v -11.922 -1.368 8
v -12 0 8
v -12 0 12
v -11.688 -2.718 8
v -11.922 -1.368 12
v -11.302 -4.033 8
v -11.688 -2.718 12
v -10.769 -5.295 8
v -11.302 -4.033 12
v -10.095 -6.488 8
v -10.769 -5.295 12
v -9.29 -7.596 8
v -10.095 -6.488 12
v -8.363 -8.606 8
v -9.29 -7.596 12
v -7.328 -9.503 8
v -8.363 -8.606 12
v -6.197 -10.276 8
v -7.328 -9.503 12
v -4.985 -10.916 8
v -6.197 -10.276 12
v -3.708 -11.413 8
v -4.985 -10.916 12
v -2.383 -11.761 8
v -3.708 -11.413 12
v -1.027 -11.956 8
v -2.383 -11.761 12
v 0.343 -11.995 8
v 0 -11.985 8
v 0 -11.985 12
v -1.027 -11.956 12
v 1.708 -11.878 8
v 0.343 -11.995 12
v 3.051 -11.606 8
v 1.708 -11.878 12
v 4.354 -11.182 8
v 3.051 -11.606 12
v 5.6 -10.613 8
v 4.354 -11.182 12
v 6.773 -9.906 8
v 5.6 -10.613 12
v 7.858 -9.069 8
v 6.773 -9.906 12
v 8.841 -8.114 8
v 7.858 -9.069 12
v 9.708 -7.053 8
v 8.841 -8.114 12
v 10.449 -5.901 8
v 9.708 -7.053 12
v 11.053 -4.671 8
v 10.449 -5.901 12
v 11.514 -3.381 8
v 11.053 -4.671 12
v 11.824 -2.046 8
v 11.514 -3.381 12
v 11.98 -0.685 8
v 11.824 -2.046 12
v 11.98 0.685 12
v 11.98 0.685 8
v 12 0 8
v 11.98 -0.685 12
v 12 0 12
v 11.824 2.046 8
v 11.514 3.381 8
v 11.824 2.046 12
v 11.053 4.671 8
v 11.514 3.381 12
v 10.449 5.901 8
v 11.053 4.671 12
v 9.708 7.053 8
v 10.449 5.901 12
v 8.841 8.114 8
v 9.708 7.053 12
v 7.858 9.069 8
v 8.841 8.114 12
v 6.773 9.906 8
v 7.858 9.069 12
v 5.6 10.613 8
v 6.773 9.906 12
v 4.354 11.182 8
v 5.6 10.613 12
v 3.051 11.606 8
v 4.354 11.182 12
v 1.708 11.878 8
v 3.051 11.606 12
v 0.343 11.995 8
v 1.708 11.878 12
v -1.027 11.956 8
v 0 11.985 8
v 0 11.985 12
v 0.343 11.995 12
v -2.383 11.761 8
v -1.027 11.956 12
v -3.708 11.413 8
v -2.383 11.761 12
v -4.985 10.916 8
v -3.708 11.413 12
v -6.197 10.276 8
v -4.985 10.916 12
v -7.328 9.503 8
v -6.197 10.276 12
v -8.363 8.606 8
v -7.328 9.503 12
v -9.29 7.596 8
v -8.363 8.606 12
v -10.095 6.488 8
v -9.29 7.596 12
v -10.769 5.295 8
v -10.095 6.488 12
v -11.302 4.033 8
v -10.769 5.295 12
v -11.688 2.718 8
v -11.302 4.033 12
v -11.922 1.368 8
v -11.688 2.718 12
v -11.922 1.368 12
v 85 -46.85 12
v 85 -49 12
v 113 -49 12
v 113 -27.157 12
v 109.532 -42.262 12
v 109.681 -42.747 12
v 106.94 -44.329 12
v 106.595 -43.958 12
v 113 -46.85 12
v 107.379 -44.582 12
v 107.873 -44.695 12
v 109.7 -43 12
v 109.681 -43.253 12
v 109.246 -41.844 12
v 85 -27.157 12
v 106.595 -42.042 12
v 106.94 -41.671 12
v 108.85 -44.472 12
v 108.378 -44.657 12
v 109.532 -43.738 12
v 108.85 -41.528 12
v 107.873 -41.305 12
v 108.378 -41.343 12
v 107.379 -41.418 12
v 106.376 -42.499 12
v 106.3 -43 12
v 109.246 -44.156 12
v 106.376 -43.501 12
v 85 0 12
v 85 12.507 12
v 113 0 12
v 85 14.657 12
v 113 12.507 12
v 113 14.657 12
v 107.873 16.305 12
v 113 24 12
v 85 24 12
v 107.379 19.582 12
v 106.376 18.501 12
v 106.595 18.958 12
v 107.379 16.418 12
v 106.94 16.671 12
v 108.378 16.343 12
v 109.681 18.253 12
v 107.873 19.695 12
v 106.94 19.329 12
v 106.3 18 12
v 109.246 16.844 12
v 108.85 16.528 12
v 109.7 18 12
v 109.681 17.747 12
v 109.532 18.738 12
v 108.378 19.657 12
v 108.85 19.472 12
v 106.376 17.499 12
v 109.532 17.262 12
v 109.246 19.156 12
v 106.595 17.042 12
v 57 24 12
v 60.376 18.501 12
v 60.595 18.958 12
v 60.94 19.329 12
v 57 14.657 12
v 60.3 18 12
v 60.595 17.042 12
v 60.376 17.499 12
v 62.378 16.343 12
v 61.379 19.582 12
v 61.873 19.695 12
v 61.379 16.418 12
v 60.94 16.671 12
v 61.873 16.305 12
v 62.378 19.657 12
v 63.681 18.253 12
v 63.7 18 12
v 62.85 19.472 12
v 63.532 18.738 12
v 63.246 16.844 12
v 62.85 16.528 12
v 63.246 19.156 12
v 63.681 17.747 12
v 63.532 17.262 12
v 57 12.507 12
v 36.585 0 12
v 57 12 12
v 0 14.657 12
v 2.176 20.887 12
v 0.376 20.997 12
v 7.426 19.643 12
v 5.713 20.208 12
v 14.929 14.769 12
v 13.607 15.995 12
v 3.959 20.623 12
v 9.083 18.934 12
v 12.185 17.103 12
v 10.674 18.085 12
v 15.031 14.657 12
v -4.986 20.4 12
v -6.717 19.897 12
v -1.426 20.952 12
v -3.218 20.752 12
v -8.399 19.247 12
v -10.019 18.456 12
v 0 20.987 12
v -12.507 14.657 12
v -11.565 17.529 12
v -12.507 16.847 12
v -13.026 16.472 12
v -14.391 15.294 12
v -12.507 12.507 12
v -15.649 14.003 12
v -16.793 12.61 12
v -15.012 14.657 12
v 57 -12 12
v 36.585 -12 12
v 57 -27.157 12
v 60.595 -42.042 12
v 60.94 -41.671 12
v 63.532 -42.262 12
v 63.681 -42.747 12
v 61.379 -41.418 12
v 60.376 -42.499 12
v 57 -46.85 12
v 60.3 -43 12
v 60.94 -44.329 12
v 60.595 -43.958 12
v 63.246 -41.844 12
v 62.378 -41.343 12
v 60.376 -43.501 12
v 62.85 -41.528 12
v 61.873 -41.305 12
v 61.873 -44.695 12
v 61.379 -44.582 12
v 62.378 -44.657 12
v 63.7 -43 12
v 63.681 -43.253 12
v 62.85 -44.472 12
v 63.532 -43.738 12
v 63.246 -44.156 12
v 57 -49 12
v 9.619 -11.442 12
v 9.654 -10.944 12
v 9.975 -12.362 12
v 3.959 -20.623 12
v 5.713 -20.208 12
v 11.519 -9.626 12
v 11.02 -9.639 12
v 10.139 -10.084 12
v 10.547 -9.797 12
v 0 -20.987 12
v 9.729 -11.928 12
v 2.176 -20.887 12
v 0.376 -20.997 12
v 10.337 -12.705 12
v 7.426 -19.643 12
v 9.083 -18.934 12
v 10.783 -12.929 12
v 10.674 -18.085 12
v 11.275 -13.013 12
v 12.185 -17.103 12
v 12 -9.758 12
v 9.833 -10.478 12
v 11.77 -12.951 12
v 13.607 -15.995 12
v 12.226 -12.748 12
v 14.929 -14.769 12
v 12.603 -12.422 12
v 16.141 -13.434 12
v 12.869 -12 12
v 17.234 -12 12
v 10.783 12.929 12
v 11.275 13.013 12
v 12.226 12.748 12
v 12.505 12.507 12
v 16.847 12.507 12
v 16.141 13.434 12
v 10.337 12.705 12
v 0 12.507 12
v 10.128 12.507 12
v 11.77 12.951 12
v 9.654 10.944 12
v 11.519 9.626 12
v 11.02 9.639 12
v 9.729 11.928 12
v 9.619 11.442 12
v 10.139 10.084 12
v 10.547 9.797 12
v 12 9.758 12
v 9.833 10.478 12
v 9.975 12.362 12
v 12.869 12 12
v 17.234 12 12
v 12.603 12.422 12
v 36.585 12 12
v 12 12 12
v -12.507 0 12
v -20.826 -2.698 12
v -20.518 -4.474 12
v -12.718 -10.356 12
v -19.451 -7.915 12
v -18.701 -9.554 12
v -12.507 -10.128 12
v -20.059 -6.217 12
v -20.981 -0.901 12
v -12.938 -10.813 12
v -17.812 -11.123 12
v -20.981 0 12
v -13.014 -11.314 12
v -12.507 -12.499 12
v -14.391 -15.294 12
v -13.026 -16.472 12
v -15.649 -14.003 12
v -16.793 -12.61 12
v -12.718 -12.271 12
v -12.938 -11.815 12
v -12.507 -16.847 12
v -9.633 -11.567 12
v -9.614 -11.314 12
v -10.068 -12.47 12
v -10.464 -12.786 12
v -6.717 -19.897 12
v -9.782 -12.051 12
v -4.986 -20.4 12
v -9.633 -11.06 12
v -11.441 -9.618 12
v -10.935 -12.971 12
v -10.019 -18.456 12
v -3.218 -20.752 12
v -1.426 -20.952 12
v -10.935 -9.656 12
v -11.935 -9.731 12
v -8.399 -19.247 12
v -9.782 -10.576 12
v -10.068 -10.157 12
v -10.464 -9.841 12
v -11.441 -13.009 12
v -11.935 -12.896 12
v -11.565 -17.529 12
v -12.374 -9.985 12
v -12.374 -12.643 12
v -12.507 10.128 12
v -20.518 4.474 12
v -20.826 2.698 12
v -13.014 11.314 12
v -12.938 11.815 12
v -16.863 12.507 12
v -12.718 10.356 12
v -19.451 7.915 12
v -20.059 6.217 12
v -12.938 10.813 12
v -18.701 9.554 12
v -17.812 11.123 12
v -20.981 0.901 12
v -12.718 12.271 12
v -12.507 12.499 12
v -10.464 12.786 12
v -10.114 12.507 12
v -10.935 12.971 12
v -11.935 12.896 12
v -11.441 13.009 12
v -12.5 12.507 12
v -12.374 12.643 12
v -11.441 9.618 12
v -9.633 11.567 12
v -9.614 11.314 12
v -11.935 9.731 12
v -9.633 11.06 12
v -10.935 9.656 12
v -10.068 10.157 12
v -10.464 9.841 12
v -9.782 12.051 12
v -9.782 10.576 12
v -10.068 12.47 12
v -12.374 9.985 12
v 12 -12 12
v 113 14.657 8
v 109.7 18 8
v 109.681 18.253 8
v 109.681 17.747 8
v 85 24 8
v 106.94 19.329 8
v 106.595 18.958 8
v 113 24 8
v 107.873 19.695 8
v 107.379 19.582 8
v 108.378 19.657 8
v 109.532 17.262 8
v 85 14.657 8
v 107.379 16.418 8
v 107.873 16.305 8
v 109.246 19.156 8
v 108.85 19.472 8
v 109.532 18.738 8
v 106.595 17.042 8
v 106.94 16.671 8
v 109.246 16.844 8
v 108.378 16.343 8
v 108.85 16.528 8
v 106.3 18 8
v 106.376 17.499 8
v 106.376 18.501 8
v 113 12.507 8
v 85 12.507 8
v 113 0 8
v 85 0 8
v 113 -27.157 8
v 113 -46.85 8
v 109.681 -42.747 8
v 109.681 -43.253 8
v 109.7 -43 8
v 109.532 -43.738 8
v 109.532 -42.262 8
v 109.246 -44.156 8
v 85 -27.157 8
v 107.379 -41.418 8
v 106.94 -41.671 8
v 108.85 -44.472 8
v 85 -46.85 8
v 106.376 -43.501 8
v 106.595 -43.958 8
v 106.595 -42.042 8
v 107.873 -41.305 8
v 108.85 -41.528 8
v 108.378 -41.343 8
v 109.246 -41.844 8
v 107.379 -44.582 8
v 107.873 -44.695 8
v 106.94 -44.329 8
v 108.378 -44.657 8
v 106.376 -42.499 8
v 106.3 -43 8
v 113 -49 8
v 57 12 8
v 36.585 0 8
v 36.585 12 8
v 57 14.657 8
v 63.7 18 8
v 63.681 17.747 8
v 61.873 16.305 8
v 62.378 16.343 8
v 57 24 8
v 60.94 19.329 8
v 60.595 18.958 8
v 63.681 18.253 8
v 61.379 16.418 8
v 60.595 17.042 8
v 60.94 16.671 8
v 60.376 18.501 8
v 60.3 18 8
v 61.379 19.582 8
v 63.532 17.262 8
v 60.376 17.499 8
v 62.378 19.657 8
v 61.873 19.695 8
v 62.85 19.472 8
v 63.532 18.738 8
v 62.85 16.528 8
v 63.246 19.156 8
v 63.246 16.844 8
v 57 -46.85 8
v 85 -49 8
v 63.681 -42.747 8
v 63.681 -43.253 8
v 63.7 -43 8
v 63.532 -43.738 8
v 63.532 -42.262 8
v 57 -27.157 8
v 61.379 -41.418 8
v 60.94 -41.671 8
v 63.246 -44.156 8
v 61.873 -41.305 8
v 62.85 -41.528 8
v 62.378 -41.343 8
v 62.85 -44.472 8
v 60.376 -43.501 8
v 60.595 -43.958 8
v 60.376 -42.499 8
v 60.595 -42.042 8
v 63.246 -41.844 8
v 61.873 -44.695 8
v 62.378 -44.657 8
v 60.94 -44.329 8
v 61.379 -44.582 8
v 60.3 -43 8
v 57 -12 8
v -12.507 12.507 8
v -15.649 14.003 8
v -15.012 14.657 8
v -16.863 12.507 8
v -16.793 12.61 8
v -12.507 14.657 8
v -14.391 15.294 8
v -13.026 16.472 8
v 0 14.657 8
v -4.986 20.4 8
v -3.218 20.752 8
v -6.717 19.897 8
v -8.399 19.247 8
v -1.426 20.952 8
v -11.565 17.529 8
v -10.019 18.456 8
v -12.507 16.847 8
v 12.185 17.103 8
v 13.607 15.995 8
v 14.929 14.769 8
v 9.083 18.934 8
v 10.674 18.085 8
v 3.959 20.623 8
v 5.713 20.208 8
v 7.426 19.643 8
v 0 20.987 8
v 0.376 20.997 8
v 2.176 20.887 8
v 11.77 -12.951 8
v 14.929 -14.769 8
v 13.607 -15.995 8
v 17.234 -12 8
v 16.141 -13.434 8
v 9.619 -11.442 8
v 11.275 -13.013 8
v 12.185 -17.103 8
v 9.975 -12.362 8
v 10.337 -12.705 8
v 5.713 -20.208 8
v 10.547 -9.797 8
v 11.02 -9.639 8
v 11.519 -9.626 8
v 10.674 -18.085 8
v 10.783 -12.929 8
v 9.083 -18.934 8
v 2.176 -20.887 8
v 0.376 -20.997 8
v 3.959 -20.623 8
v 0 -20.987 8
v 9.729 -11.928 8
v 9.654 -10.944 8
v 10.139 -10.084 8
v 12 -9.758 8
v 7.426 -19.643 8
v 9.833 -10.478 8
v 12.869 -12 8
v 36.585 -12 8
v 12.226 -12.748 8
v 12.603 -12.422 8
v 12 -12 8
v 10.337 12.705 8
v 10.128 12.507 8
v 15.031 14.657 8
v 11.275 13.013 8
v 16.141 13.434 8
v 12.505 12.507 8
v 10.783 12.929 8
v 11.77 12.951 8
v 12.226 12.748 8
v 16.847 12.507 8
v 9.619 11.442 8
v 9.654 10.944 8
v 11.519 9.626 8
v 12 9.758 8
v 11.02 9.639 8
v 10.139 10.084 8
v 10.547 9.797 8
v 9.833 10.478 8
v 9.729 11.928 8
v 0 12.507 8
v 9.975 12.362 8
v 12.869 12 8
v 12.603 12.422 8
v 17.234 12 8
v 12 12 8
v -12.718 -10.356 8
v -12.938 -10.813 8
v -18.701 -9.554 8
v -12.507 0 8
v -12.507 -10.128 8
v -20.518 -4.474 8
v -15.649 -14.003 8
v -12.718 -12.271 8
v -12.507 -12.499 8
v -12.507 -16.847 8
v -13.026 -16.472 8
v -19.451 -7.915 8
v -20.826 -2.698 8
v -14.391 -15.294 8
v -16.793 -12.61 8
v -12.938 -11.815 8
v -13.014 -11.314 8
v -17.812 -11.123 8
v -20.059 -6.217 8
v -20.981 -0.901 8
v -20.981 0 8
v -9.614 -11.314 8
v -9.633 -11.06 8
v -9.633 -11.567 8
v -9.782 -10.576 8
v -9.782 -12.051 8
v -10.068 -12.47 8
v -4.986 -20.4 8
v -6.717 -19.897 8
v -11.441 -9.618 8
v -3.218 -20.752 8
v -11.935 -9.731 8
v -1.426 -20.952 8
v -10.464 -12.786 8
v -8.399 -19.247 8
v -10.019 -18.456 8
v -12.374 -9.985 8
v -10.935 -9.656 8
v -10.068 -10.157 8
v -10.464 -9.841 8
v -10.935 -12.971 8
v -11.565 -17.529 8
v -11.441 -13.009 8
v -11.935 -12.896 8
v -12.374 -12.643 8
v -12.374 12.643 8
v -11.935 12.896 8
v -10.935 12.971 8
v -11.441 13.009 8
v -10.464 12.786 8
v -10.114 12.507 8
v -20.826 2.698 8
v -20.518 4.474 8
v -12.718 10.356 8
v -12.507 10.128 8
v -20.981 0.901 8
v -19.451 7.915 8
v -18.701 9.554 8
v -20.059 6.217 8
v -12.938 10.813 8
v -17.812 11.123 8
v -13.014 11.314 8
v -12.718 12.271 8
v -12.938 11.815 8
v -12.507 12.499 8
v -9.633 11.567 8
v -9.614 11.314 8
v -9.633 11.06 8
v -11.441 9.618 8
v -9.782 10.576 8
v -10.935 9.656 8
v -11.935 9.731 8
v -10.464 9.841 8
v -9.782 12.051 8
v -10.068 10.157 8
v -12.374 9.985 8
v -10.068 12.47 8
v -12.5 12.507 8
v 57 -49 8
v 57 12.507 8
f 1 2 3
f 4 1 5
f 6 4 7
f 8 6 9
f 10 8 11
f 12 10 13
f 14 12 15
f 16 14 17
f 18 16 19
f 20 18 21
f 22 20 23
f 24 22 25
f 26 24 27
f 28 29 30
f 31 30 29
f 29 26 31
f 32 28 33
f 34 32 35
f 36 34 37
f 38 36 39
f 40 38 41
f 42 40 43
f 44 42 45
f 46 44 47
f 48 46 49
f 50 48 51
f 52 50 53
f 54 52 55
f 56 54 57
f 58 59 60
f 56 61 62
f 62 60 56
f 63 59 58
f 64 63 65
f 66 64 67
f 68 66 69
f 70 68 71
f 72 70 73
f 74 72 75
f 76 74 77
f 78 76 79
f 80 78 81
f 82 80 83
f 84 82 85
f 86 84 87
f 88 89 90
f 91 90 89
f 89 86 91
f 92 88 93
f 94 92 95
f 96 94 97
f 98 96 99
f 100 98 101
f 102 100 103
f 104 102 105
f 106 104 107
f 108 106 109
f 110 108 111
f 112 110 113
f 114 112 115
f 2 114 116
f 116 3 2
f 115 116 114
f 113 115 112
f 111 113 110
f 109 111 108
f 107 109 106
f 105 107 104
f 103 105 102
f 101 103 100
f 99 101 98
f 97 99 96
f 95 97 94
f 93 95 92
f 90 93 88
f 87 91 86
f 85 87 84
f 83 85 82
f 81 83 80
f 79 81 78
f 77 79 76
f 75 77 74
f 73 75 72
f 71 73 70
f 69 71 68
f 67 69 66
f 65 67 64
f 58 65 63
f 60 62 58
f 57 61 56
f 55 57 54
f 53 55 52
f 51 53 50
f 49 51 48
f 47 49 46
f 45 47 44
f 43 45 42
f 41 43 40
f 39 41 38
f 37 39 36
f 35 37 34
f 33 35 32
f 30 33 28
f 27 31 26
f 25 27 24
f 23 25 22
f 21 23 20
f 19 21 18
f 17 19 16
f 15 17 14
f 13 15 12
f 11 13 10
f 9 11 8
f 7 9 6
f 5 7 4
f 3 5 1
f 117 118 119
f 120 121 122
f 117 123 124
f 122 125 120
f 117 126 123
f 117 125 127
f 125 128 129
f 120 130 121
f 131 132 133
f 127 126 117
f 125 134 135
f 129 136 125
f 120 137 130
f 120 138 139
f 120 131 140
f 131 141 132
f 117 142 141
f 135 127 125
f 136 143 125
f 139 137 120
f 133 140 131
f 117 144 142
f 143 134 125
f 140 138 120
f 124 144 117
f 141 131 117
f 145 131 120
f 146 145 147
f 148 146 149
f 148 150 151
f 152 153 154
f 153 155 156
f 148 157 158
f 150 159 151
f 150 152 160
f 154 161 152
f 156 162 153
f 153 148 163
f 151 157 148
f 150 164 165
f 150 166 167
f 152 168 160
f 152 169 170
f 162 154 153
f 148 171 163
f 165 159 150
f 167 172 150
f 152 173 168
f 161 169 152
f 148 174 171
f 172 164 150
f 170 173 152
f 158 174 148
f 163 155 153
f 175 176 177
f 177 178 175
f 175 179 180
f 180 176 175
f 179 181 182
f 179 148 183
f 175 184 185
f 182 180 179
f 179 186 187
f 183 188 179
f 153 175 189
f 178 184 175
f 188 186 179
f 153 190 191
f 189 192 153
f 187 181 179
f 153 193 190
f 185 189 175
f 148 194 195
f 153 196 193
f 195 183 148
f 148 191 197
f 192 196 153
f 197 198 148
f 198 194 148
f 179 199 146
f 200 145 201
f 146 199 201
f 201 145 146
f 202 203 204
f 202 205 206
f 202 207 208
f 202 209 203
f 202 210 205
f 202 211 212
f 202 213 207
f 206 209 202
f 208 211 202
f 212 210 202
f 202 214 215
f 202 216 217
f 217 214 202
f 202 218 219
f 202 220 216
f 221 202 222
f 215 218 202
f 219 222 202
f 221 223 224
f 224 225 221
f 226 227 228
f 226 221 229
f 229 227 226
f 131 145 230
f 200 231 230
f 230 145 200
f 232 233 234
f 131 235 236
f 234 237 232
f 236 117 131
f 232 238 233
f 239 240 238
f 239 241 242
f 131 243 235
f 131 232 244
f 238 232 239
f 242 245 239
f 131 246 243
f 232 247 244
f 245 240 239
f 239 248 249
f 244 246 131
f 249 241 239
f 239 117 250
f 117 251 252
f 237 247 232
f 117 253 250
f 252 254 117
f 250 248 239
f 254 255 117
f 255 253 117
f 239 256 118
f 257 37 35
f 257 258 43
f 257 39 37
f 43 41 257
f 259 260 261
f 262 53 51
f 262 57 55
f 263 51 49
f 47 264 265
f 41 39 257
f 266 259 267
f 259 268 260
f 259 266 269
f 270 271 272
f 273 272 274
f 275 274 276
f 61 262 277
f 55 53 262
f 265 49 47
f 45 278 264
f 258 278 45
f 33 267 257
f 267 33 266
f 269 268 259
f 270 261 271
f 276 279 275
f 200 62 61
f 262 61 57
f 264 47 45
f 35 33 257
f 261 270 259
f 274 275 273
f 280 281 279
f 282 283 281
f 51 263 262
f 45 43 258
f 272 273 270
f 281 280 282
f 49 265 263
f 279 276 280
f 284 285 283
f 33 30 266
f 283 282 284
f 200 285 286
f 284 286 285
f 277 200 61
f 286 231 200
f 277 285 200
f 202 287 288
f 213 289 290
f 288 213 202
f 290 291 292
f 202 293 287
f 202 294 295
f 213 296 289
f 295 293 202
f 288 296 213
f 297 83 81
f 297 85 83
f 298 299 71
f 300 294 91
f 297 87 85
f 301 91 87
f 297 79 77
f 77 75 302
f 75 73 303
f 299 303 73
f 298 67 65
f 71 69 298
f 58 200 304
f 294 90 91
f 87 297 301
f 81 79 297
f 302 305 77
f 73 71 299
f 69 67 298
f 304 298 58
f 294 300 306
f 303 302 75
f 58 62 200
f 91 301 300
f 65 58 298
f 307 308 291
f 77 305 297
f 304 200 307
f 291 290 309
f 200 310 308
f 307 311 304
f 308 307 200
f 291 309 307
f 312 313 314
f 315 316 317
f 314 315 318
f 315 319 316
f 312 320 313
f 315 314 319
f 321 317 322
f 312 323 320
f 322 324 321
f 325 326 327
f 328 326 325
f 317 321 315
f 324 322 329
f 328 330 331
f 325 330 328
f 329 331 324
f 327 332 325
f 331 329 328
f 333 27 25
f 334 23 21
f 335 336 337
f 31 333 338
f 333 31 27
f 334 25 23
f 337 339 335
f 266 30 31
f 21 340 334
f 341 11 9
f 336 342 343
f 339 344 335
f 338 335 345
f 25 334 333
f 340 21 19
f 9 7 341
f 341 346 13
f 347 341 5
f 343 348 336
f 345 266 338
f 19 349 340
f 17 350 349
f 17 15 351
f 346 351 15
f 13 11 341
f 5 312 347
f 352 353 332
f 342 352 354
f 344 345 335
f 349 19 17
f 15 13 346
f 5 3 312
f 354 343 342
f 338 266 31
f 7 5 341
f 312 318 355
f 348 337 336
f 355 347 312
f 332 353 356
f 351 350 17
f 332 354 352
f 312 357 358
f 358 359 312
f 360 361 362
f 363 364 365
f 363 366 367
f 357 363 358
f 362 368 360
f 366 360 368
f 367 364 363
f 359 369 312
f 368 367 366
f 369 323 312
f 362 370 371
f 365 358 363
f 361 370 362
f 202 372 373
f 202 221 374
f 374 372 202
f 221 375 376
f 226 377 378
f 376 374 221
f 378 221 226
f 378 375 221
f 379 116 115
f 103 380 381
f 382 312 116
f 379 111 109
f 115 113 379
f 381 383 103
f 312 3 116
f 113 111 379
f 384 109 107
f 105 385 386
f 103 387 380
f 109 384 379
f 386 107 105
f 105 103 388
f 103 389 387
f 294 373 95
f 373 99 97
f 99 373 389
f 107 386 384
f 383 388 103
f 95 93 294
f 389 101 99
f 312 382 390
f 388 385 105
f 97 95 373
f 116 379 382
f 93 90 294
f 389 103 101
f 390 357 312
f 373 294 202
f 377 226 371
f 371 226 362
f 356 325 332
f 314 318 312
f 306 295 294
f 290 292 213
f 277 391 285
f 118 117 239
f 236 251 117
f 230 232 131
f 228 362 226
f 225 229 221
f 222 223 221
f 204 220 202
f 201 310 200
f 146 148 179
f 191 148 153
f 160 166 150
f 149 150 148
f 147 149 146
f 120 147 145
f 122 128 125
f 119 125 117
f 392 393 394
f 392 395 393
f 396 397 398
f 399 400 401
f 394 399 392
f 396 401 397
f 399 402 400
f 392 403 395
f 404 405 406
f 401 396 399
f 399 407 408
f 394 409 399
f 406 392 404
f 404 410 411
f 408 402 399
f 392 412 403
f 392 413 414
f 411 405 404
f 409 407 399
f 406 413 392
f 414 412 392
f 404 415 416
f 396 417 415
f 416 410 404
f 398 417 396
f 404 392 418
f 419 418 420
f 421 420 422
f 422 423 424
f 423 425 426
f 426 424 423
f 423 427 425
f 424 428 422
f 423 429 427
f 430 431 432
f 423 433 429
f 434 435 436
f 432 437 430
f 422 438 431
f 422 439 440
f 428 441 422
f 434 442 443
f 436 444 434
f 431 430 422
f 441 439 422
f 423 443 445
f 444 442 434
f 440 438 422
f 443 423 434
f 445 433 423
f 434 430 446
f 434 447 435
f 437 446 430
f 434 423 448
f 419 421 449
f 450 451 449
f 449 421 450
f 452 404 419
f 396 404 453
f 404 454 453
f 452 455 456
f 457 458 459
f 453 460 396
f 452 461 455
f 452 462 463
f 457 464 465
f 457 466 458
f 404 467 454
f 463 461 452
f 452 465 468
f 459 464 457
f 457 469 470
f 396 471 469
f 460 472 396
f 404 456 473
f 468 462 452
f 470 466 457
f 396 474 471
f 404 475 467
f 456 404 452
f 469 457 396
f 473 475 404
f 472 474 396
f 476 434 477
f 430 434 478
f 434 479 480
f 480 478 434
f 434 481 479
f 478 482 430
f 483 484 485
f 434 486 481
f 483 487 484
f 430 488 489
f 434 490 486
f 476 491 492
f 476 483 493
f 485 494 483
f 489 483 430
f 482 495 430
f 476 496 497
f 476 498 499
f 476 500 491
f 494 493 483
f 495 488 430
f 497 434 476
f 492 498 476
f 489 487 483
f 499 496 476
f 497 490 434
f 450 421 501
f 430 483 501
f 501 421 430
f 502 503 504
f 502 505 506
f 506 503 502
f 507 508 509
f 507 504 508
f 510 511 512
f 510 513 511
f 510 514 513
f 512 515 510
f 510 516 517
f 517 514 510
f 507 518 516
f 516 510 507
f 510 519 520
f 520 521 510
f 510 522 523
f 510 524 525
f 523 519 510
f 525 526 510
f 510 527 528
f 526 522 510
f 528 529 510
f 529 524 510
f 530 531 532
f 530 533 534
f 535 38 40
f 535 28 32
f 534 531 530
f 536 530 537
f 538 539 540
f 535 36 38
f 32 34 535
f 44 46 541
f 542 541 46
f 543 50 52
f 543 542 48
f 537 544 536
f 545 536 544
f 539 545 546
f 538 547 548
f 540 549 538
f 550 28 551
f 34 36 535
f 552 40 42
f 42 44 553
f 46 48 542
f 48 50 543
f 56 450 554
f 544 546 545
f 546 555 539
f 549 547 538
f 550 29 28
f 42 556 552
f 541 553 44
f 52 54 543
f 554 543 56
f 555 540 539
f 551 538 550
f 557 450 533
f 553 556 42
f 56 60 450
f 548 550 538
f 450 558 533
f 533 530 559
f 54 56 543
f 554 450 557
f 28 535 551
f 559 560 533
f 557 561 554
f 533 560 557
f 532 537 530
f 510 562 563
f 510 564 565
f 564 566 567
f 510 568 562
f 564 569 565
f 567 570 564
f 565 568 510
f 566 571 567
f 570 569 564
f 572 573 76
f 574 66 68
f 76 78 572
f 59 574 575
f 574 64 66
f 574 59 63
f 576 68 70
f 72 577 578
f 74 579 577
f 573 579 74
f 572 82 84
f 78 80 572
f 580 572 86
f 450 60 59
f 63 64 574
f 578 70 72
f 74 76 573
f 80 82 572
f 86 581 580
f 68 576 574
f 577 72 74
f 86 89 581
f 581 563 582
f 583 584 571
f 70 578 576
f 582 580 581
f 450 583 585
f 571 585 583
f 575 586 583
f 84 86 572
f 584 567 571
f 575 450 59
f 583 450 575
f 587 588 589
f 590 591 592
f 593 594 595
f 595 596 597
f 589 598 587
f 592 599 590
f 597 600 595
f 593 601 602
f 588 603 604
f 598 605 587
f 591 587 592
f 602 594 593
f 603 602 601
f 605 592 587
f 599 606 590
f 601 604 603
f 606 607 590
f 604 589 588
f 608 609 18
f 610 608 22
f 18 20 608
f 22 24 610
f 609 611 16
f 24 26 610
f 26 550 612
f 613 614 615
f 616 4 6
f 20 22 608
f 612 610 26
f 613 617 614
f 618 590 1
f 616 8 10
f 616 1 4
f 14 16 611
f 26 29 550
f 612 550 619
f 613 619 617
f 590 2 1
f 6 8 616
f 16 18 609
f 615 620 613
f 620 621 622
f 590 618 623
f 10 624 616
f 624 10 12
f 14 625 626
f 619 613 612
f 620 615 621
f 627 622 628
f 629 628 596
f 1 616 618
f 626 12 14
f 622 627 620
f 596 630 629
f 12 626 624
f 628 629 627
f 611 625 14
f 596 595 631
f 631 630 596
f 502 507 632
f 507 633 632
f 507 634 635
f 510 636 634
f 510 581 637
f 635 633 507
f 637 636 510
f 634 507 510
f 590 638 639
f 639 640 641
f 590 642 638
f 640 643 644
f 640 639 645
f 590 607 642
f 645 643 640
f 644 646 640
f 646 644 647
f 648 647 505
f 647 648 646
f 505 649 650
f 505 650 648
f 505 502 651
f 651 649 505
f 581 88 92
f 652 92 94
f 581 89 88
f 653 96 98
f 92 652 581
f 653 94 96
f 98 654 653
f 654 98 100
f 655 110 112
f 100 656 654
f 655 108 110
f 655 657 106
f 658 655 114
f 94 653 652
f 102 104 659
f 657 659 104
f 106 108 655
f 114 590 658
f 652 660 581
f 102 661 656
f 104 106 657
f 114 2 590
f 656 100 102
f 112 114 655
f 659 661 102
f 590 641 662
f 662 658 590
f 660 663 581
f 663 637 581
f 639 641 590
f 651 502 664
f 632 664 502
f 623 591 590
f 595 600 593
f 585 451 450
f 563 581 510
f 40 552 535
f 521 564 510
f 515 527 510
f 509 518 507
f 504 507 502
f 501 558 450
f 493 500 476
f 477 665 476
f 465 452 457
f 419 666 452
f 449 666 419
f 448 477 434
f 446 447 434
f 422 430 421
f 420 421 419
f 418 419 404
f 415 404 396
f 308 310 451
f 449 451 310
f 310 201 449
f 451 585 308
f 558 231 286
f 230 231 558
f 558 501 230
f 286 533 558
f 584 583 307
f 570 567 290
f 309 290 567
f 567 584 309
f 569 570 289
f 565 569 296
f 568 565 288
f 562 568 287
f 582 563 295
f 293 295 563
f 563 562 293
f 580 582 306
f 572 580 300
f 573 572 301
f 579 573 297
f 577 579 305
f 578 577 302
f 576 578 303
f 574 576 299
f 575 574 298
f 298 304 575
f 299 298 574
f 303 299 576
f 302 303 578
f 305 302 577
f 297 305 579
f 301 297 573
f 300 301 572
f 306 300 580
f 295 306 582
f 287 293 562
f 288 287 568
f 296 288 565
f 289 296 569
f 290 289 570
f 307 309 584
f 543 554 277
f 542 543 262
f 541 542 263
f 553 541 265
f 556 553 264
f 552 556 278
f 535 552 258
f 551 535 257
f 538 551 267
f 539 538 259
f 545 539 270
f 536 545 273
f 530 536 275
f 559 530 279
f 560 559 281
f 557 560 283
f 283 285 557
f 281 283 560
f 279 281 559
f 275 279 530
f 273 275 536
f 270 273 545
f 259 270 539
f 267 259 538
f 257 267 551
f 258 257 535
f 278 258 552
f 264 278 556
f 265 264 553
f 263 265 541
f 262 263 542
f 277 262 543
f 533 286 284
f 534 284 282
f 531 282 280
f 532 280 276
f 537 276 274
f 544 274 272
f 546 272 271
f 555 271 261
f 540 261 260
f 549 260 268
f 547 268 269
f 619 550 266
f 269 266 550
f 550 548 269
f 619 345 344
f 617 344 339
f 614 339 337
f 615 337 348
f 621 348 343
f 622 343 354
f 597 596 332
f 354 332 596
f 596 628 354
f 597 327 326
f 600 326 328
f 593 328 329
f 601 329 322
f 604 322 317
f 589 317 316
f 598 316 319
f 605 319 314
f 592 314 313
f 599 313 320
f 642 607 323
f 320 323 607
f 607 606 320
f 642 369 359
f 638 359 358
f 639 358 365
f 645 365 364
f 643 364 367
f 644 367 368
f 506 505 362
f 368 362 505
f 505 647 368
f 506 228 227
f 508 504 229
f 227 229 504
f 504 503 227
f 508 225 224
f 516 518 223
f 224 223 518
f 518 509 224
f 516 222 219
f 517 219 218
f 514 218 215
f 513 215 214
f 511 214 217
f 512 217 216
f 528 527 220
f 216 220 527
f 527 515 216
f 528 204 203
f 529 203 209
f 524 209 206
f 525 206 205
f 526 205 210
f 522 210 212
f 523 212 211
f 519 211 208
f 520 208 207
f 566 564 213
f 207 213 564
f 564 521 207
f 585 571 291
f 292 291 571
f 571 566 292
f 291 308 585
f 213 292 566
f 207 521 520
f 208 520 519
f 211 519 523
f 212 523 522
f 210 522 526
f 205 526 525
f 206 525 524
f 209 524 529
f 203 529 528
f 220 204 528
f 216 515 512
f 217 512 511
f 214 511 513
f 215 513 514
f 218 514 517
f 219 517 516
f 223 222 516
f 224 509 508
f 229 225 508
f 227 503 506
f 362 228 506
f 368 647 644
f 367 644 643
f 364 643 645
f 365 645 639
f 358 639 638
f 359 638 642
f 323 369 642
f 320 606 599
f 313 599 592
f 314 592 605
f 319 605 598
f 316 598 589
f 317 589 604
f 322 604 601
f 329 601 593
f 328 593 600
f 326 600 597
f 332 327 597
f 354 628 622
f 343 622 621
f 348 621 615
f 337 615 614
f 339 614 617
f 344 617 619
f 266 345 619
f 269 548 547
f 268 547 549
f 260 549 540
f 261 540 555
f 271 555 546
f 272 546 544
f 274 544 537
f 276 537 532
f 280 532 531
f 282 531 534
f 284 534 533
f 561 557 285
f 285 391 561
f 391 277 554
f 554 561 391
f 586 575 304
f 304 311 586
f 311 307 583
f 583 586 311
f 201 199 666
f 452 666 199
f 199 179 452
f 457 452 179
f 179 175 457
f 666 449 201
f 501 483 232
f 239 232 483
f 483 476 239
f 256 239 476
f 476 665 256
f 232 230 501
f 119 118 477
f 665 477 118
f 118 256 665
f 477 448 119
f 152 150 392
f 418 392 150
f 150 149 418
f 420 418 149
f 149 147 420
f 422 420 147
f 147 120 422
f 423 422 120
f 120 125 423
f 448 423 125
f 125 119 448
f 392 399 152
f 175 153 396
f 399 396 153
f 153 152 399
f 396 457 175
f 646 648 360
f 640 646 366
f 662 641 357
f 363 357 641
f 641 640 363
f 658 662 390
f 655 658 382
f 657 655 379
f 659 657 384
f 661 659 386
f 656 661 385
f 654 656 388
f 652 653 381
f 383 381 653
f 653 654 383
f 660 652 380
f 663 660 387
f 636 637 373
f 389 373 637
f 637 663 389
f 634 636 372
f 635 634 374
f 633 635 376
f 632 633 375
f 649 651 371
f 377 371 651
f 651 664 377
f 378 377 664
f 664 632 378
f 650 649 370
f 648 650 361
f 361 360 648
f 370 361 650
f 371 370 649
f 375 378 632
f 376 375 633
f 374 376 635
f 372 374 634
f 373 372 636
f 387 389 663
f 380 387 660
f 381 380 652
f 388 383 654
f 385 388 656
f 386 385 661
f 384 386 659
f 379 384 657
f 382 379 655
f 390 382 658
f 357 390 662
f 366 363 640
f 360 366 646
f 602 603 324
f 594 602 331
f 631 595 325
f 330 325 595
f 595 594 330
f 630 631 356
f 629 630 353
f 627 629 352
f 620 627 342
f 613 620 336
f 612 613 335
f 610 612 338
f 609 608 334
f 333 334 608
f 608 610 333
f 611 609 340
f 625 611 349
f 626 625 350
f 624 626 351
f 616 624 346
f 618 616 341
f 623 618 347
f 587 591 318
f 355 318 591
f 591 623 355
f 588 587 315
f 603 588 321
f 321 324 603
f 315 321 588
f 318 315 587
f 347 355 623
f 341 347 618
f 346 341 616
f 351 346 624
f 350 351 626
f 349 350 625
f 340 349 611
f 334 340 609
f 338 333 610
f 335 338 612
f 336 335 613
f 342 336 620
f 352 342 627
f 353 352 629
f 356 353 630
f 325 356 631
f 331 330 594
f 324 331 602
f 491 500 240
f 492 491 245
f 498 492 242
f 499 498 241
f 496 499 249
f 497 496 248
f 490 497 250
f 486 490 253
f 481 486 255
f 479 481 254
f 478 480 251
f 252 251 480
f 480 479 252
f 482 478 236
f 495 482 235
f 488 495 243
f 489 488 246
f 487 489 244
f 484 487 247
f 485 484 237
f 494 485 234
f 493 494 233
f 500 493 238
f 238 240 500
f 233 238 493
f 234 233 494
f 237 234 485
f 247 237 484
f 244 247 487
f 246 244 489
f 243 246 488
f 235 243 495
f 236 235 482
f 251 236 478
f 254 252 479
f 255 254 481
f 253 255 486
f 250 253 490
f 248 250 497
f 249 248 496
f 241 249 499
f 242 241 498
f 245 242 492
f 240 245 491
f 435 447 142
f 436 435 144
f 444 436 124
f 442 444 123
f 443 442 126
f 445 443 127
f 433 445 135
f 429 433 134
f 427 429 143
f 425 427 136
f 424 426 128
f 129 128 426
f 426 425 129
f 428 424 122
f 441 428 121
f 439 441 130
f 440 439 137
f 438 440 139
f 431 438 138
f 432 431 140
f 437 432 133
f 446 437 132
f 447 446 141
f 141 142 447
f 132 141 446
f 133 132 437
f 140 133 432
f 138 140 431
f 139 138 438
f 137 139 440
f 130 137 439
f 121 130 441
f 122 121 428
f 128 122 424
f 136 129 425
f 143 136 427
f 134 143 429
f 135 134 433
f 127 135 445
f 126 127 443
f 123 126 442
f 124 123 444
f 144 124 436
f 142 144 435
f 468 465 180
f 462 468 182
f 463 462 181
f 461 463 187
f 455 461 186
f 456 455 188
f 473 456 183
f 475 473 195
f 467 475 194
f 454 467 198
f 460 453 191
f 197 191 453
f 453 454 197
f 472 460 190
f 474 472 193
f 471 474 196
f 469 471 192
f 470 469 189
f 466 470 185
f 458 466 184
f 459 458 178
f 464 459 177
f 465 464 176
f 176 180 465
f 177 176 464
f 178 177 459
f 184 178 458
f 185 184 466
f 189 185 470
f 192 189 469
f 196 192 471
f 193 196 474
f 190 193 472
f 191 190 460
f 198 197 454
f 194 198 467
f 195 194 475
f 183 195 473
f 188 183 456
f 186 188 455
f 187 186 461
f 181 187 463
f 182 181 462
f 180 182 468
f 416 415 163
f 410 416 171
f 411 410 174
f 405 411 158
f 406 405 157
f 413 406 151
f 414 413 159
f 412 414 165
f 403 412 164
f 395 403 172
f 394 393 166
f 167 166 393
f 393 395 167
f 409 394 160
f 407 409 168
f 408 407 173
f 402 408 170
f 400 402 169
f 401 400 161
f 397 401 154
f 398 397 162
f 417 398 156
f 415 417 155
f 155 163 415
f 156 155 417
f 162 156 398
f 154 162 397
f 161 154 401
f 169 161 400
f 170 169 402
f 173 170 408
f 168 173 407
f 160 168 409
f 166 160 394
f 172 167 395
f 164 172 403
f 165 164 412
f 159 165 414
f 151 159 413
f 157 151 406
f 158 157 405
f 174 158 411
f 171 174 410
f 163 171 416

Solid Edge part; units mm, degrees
sketch "Sketch1" plane through (0, 0, 8) normal (0, 0, 1) x (1, 0, 0)
  circle A0 centre (0, 0) radius 21
  circle A1 centre (0, 0) radius 12
  circle A2 centre (11.3137, 11.3137) radius 1.7
  circle A3 centre (-11.3137, 11.3137) radius 1.7
  circle A4 centre (-11.3137, -11.3137) radius 1.7
  circle A5 centre (11.3137, -11.3137) radius 1.7
extrude "ExtrudedProtrusion_1" add sketch "Sketch1" along normal blind 4
sketch "Sketch2" plane through (0, 0, 8) normal (0, 0, 1) x (1, 0, 0)
  line L0 (12, -12) -> (73, -12)
  line L1 (73, -12) -> (73, 12)
  line L2 (73, 12) -> (12, 12)
  line L3 (12, 12) -> (12, -12)
extrude "ExtrudedProtrusion_2" add sketch "Sketch2" along normal blind 4
sketch "Sketch3" plane through (0, 0, 8) normal (0, 0, 1) x (1, 0, 0)
  line L0 (57, -49) -> (113, -49)
  line L1 (113, -49) -> (113, 24)
  line L2 (113, 24) -> (57, 24)
  line L3 (57, 24) -> (57, -49)
  circle A0 centre (62, -43) radius 1.7
  circle A1 centre (108, -43) radius 1.7
  circle A2 centre (62, 18) radius 1.7
  circle A3 centre (108, 18) radius 1.7
extrude "ExtrudedProtrusion_3" add sketch "Sketch3" along normal blind 4
